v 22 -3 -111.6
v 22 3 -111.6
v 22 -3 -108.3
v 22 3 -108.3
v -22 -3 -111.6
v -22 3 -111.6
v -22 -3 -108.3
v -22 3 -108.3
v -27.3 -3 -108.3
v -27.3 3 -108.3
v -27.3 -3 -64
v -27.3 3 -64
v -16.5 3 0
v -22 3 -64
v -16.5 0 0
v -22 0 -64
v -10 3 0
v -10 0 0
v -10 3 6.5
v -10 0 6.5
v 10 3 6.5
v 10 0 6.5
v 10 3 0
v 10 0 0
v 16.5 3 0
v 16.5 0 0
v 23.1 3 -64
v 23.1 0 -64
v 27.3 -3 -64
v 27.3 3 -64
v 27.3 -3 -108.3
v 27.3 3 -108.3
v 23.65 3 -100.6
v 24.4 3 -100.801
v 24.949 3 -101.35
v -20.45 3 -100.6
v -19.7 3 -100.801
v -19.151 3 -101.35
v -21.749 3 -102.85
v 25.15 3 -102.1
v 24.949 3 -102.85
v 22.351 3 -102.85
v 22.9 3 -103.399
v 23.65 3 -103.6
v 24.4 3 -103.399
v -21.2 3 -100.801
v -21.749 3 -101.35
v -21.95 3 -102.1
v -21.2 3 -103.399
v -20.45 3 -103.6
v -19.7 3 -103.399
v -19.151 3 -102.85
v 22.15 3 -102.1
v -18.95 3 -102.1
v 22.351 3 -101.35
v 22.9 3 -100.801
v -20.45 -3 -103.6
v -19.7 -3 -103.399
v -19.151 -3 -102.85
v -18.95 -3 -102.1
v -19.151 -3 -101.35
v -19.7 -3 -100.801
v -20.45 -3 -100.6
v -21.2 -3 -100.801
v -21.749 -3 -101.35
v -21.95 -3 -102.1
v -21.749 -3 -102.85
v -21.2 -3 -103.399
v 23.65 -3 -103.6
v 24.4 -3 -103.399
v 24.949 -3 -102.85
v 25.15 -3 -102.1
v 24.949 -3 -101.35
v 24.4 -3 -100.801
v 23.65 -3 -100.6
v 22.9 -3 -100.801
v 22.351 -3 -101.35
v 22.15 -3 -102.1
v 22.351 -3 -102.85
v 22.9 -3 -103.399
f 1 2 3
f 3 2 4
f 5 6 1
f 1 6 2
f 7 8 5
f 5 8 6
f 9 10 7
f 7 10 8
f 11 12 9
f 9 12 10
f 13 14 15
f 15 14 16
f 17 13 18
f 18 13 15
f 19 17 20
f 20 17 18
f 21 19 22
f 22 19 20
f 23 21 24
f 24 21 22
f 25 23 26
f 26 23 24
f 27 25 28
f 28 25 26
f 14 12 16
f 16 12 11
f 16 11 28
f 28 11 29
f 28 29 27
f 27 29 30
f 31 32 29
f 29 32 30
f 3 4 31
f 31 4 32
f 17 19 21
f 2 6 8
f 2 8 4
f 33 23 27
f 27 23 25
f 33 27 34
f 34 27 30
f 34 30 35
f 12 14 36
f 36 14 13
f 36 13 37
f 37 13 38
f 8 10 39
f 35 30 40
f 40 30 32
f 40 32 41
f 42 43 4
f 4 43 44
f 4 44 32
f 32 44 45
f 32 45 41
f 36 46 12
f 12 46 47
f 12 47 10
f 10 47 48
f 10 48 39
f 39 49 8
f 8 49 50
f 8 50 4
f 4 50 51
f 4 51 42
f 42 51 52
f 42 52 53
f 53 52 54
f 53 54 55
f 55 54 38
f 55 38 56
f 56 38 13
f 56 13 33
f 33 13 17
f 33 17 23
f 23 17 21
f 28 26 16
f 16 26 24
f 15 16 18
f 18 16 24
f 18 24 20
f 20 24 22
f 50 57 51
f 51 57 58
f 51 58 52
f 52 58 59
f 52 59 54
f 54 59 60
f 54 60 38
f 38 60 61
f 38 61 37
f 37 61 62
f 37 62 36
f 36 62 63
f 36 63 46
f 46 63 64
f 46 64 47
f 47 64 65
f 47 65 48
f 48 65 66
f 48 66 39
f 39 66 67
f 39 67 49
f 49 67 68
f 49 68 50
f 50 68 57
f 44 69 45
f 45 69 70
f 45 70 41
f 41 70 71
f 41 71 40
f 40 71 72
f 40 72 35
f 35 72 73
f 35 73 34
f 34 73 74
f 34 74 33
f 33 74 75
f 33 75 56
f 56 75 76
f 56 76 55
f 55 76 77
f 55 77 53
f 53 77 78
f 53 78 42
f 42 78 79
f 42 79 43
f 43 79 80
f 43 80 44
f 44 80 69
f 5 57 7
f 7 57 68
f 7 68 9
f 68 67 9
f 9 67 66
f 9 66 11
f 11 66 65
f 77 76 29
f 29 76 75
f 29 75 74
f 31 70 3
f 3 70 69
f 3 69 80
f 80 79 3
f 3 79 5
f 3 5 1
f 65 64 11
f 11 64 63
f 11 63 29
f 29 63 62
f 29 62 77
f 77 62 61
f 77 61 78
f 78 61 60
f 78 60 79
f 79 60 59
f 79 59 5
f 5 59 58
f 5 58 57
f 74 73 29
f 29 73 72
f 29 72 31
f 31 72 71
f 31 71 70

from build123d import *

# Parameters (mm, degrees)
BOSS_EXTRUDE1_DEPTH = 3
SKETCH2_R           = 1.5
CUT_EXTRUDE1_DEPTH  = 3
BOSS_EXTRUDE2_START = 3
SKETCH3_R           = 1.5
BOSS_EXTRUDE2_DEPTH = 3


with BuildPart() as part:
    # Sketch1 → Boss-Extrude1 (new body)
    with BuildSketch(Plane(origin=(0, 0, 0), x_dir=(1, 0, 0), z_dir=(0, 1, 0))):
        Polygon((-22, 64), (-16.5, 0), (-10, 0), (-10, -6.5), (10, -6.5), (10, 0), (16.5, 0), (23.1, 64), (27.3, 64), (27.3, 108.3), (22, 108.3), (22, 111.6), (-22, 111.6), (-22, 108.3), (-27.3, 108.3), (-27.3, 64), align=None)
    extrude(amount=BOSS_EXTRUDE1_DEPTH)

    # Sketch2 → Cut-Extrude1 (cut)
    with BuildSketch(Plane.XZ):
        with Locations(Location((23.65, -102.1, 0), (0, 0, 270))):
            Circle(SKETCH2_R)
        with Locations(Location((-20.45, -102.1, 0), (0, 0, 270))):
            Circle(SKETCH2_R)
    extrude(amount=-CUT_EXTRUDE1_DEPTH, mode=Mode.SUBTRACT)

    # Sketch3 → Boss-Extrude2 (add)
    with BuildSketch(Plane.XZ.offset(BOSS_EXTRUDE2_START)):
        Polygon((-22, -64), (23.1, -64), (27.3, -64), (27.3, -108.3), (22, -108.3), (22, -111.6), (-22, -111.6), (-22, -108.3), (-27.3, -108.3), (-27.3, -64), align=None)
        with Locations(Location((-20.45, -102.1, 0), (0, 0, 270))):
            Circle(SKETCH3_R, mode=Mode.SUBTRACT)
        with Locations(Location((23.65, -102.1, 0), (0, 0, 270))):
            Circle(SKETCH3_R, mode=Mode.SUBTRACT)
    extrude(amount=-BOSS_EXTRUDE2_DEPTH)


solid = part.part
